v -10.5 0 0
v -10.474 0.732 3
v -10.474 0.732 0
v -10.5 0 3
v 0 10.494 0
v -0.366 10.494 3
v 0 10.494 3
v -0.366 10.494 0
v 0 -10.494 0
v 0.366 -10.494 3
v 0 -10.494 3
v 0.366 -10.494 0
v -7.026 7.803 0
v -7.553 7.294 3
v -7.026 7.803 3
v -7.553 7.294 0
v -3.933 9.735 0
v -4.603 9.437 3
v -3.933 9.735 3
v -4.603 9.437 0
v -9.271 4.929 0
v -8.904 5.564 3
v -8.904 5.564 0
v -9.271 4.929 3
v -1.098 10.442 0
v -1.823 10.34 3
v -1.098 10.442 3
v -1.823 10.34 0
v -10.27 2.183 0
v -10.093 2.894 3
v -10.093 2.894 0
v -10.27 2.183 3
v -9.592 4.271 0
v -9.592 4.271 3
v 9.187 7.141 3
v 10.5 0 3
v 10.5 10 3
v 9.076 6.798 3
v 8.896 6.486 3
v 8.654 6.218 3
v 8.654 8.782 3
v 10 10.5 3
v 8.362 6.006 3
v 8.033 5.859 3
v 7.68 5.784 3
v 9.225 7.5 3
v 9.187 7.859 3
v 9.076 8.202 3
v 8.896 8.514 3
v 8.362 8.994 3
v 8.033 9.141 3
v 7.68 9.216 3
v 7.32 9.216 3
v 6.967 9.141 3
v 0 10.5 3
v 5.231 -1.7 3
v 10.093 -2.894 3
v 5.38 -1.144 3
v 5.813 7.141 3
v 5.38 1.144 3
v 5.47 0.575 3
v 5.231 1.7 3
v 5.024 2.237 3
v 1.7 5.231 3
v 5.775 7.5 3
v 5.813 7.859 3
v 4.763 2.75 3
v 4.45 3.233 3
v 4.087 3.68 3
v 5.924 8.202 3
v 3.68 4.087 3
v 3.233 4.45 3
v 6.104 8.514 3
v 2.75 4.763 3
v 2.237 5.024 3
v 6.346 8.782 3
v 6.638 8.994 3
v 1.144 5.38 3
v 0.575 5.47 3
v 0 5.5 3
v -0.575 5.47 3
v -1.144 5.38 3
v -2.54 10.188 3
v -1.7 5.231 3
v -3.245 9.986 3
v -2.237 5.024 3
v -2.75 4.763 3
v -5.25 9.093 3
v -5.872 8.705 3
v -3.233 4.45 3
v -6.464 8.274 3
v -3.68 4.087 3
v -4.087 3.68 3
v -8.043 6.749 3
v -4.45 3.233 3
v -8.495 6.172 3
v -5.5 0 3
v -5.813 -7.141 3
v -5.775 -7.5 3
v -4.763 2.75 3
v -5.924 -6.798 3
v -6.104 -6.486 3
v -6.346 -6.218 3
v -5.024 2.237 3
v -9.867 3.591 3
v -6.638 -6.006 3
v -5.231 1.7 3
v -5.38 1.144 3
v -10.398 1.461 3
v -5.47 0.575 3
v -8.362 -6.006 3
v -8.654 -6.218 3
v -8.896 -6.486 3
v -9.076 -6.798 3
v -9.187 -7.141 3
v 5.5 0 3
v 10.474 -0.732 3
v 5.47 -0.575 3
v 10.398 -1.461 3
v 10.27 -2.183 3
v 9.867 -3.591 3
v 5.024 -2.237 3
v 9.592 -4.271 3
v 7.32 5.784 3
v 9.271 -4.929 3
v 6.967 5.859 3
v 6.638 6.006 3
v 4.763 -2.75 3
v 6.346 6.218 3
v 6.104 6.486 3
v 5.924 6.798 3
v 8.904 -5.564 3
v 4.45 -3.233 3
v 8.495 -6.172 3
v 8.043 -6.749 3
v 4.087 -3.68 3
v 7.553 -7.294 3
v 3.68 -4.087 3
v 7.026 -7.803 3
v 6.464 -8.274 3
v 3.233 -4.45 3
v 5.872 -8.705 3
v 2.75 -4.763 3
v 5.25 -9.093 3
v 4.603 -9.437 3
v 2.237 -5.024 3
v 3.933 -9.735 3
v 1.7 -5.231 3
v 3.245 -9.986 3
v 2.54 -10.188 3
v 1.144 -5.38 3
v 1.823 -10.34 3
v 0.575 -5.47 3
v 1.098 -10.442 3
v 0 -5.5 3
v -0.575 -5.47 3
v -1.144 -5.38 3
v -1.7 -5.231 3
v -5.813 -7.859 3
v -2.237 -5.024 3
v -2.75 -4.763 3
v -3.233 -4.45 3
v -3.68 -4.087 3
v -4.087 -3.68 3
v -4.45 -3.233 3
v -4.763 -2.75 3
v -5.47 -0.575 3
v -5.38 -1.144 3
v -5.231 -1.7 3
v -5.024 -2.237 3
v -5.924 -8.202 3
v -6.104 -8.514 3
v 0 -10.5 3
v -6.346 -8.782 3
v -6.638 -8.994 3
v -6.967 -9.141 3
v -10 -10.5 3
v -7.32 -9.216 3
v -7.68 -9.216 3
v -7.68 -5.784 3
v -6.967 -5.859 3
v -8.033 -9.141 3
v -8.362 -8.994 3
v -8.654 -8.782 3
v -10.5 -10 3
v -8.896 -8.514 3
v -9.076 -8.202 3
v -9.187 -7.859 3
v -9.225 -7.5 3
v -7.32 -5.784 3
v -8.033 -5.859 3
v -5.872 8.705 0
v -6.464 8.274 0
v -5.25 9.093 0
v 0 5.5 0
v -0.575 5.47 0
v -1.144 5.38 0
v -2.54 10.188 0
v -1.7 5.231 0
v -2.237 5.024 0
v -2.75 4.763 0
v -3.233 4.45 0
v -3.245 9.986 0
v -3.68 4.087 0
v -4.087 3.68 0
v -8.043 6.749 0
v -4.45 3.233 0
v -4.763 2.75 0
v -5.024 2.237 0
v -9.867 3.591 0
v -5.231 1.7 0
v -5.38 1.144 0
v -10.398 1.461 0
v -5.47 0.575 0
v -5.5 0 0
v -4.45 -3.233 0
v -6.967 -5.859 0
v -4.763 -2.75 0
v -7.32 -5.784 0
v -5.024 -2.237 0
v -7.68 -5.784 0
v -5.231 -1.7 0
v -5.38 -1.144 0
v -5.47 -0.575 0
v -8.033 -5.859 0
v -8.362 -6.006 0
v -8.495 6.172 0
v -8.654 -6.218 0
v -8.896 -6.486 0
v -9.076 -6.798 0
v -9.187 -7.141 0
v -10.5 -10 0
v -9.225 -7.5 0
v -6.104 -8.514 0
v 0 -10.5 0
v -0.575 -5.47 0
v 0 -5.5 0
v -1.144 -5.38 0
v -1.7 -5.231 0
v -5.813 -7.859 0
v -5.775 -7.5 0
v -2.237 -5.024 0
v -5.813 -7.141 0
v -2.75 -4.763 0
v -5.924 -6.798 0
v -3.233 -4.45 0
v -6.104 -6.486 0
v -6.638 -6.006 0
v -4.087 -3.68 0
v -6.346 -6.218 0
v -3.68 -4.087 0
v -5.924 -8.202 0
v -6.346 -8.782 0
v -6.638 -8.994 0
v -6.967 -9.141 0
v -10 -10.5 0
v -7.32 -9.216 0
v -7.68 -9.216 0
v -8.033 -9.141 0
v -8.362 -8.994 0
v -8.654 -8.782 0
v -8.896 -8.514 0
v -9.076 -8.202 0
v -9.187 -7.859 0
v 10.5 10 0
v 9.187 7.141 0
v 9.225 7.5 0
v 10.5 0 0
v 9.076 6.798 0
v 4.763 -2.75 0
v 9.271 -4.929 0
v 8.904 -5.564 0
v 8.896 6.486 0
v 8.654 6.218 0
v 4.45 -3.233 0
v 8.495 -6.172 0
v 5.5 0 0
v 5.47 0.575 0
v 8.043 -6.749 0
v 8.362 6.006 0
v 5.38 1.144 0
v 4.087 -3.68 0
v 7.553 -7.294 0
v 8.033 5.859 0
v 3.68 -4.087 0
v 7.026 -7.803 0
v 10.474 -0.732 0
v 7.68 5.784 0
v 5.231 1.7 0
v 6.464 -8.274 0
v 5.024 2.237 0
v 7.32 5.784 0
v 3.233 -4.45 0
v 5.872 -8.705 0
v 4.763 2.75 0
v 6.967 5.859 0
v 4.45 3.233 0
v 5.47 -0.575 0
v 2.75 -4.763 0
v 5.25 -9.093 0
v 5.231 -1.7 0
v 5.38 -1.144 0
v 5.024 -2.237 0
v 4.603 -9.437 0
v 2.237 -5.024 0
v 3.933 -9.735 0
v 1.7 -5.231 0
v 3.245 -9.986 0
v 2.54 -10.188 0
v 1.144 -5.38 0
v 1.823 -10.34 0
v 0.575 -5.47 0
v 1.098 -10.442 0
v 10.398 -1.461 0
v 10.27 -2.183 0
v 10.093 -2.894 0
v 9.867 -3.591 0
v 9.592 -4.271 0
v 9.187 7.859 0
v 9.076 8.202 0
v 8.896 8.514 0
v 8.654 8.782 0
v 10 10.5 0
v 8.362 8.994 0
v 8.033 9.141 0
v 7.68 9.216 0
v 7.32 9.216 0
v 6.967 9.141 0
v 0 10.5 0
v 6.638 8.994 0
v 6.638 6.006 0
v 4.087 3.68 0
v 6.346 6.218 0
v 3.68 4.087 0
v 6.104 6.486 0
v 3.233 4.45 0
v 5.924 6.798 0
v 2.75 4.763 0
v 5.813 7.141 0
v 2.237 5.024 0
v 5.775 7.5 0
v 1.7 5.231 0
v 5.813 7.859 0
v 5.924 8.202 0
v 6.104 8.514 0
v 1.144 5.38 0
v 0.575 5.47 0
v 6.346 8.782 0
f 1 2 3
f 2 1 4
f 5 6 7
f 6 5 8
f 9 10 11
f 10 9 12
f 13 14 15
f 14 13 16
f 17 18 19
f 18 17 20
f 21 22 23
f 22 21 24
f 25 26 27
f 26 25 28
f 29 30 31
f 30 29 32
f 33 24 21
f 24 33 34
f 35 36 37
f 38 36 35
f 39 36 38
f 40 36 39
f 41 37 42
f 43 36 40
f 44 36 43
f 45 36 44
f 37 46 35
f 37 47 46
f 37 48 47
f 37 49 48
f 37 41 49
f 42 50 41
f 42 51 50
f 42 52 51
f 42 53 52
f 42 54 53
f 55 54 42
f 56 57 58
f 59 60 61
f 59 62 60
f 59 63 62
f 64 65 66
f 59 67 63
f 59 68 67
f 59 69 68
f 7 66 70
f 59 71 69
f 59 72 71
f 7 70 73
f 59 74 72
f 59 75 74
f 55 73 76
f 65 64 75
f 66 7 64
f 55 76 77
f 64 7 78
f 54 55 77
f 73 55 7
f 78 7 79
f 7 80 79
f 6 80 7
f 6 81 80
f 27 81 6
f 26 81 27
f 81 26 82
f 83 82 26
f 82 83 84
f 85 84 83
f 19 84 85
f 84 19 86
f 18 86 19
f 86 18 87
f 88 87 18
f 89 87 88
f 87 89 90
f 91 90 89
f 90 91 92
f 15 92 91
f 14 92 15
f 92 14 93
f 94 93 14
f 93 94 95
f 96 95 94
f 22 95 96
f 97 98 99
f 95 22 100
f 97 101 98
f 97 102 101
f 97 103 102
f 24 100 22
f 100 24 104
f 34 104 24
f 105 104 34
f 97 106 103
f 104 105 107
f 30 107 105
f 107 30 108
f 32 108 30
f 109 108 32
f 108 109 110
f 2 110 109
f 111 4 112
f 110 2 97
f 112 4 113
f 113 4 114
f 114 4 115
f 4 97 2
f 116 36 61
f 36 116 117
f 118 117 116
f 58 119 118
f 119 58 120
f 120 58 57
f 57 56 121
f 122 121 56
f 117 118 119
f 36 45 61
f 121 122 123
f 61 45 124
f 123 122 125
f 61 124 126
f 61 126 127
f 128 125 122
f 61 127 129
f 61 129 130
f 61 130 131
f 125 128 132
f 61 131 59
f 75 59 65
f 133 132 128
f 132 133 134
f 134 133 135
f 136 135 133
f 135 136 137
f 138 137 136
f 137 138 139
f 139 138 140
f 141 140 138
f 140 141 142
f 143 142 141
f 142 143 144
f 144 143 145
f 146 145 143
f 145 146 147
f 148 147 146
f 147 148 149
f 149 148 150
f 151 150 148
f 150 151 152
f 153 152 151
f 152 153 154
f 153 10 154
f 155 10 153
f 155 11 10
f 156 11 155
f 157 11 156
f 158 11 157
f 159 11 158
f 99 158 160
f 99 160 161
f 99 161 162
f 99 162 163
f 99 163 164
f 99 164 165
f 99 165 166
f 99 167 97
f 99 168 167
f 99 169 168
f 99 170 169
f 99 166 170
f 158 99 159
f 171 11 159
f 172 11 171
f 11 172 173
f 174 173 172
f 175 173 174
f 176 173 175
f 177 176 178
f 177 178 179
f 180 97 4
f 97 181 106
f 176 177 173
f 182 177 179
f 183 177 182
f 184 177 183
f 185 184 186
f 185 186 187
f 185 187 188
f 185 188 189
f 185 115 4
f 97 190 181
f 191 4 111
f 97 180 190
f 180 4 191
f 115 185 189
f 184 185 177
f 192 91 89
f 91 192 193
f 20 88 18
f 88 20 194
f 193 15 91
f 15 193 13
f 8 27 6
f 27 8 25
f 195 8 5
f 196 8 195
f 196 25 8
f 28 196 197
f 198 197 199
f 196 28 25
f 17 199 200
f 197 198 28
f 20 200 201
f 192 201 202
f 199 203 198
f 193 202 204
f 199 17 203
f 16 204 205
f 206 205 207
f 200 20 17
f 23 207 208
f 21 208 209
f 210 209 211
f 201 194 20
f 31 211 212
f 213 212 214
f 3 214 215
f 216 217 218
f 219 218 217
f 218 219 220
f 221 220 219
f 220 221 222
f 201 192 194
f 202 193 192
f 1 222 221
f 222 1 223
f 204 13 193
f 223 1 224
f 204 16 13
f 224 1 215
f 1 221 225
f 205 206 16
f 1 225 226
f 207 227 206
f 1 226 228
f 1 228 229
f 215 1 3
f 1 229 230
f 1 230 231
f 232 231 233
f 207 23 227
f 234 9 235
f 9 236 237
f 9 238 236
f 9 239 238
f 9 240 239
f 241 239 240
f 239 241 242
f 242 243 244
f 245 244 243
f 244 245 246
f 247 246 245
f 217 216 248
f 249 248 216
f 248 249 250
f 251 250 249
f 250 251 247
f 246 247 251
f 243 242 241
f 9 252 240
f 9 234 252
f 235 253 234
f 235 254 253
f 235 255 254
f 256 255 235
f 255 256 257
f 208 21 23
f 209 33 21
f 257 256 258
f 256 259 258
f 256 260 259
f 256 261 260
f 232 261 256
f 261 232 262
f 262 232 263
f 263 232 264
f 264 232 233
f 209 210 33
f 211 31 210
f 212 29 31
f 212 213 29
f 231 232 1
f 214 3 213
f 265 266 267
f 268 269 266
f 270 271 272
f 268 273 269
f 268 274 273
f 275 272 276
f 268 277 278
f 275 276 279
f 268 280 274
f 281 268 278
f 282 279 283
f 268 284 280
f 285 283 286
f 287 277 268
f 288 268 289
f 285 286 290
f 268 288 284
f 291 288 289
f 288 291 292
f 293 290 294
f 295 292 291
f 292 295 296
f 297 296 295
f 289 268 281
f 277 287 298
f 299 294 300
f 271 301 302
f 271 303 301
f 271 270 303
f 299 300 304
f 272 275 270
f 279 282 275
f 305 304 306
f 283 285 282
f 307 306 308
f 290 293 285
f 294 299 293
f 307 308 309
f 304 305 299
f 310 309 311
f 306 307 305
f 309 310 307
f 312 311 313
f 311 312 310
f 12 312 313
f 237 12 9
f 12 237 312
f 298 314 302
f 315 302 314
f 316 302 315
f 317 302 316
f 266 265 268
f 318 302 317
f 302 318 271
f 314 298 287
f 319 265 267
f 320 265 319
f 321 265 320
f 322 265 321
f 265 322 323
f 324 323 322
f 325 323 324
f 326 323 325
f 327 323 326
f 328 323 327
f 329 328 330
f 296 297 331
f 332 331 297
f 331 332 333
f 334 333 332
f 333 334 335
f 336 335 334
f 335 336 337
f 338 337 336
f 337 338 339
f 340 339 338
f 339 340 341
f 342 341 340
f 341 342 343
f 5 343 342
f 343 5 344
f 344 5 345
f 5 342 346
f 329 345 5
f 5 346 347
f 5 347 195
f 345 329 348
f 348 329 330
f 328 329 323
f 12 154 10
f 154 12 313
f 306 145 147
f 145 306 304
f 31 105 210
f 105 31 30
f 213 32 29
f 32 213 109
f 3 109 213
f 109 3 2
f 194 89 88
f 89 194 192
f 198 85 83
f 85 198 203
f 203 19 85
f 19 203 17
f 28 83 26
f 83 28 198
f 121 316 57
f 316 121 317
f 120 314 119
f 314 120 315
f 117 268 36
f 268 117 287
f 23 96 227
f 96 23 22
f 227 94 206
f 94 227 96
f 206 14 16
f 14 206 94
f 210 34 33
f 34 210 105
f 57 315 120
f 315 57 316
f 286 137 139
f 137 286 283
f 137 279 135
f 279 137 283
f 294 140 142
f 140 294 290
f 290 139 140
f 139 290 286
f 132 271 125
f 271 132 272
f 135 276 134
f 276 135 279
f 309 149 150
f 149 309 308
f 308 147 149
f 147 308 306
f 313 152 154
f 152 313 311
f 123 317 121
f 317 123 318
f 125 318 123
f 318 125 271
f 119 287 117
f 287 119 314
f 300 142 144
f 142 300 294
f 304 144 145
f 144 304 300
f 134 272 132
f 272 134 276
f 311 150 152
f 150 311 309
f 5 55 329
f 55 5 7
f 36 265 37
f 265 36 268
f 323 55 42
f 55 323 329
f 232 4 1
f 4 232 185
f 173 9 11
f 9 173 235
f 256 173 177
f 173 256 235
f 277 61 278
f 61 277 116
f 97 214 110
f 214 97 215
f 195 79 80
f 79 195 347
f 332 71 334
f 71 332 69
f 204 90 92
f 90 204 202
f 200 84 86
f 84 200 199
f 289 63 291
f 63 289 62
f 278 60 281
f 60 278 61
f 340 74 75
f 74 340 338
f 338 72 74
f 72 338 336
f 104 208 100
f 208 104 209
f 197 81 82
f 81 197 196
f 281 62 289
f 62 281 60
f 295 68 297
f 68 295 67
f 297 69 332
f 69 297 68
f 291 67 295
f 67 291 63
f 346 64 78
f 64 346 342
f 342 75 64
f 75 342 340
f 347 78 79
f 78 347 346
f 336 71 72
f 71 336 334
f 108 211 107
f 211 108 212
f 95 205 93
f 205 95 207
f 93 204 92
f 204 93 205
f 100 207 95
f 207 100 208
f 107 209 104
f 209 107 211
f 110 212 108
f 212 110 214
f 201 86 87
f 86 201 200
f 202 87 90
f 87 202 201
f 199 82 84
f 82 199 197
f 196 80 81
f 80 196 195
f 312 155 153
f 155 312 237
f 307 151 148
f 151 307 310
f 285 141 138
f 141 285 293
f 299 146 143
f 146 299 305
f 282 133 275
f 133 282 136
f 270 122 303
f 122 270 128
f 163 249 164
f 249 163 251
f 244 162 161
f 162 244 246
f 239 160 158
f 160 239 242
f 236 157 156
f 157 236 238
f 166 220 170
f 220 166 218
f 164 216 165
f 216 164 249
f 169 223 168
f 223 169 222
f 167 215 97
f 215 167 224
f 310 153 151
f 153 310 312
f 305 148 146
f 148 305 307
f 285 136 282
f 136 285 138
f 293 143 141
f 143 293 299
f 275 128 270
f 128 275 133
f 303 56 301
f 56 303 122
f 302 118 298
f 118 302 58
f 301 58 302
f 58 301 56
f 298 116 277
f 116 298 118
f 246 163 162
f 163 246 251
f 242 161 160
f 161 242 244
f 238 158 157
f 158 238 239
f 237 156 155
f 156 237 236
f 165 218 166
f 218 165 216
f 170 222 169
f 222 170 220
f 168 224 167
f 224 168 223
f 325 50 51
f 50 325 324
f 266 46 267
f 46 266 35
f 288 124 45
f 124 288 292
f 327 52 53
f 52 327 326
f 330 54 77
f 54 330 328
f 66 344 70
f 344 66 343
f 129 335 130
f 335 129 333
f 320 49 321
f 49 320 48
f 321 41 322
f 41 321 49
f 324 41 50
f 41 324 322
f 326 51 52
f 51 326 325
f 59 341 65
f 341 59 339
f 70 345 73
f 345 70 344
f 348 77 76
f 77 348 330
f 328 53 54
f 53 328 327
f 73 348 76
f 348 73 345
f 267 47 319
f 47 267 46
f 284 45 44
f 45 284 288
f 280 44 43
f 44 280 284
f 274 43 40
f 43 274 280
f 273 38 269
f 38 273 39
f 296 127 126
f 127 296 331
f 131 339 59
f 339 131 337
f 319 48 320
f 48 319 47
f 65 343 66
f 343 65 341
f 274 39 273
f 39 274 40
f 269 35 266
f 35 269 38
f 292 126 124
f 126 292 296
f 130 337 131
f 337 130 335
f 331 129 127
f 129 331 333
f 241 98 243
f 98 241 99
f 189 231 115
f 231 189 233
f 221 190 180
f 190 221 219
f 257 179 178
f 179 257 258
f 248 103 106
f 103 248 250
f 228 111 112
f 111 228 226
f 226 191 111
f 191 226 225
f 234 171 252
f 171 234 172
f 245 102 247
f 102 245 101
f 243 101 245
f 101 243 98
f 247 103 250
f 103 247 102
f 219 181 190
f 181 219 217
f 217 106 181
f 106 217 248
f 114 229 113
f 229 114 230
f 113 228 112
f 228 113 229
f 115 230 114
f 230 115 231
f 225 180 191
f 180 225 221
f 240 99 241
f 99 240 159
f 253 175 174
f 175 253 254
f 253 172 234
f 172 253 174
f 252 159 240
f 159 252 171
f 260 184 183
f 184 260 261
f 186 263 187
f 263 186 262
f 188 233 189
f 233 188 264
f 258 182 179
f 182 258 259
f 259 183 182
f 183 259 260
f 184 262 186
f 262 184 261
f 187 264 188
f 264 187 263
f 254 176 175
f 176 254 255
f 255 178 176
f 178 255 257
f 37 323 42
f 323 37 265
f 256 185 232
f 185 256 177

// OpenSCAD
// Project: BigBox v2
// Part:    y_axis_bearing_retainer (x2)
// Author:  Grigori Palamartšuk <grigori.palamarchuk@gmail.com>
// Source:  http://bigbox.lecktor.ee

module body()
{
    cylinder(h=3,r=10.5,$fn=90);
    cube([10.5,10.5,3]);
    translate([-10.5,-10.5,0]) cube([10.5,10.5,3]);
}

module holes()
{
    // bearing hole
    cylinder(h=3,r=5.5,$fn=60);
    
    // screw holes
    translate([7.5,7.5,0]) cylinder(h=3,r=1.725,$fn=30);
    translate([-7.5,-7.5,0]) cylinder(h=3,r=1.725,$fn=30);
    
    // edge angle cutouts
    translate([10,10.5,3])
        rotate([0,90,-90])
            edge_cutout();
    
    translate([-10,-10.5,3])
        rotate([0,90,90])
            edge_cutout();
}

module edge_cutout()
{
    polyhedron(
        points=[
            [0,0,0],[3,0,0],[3,0.5,0],
            [0,0.5,0],[0,0.5,0.5],[3,0.5,0.5]
        ],
        faces=[
            [0,1,2,3],[5,4,3,2],[0,4,5,1],[0,3,4],[5,2,1]
        ]
    );
}

difference()
{
    body();
    holes();
}
